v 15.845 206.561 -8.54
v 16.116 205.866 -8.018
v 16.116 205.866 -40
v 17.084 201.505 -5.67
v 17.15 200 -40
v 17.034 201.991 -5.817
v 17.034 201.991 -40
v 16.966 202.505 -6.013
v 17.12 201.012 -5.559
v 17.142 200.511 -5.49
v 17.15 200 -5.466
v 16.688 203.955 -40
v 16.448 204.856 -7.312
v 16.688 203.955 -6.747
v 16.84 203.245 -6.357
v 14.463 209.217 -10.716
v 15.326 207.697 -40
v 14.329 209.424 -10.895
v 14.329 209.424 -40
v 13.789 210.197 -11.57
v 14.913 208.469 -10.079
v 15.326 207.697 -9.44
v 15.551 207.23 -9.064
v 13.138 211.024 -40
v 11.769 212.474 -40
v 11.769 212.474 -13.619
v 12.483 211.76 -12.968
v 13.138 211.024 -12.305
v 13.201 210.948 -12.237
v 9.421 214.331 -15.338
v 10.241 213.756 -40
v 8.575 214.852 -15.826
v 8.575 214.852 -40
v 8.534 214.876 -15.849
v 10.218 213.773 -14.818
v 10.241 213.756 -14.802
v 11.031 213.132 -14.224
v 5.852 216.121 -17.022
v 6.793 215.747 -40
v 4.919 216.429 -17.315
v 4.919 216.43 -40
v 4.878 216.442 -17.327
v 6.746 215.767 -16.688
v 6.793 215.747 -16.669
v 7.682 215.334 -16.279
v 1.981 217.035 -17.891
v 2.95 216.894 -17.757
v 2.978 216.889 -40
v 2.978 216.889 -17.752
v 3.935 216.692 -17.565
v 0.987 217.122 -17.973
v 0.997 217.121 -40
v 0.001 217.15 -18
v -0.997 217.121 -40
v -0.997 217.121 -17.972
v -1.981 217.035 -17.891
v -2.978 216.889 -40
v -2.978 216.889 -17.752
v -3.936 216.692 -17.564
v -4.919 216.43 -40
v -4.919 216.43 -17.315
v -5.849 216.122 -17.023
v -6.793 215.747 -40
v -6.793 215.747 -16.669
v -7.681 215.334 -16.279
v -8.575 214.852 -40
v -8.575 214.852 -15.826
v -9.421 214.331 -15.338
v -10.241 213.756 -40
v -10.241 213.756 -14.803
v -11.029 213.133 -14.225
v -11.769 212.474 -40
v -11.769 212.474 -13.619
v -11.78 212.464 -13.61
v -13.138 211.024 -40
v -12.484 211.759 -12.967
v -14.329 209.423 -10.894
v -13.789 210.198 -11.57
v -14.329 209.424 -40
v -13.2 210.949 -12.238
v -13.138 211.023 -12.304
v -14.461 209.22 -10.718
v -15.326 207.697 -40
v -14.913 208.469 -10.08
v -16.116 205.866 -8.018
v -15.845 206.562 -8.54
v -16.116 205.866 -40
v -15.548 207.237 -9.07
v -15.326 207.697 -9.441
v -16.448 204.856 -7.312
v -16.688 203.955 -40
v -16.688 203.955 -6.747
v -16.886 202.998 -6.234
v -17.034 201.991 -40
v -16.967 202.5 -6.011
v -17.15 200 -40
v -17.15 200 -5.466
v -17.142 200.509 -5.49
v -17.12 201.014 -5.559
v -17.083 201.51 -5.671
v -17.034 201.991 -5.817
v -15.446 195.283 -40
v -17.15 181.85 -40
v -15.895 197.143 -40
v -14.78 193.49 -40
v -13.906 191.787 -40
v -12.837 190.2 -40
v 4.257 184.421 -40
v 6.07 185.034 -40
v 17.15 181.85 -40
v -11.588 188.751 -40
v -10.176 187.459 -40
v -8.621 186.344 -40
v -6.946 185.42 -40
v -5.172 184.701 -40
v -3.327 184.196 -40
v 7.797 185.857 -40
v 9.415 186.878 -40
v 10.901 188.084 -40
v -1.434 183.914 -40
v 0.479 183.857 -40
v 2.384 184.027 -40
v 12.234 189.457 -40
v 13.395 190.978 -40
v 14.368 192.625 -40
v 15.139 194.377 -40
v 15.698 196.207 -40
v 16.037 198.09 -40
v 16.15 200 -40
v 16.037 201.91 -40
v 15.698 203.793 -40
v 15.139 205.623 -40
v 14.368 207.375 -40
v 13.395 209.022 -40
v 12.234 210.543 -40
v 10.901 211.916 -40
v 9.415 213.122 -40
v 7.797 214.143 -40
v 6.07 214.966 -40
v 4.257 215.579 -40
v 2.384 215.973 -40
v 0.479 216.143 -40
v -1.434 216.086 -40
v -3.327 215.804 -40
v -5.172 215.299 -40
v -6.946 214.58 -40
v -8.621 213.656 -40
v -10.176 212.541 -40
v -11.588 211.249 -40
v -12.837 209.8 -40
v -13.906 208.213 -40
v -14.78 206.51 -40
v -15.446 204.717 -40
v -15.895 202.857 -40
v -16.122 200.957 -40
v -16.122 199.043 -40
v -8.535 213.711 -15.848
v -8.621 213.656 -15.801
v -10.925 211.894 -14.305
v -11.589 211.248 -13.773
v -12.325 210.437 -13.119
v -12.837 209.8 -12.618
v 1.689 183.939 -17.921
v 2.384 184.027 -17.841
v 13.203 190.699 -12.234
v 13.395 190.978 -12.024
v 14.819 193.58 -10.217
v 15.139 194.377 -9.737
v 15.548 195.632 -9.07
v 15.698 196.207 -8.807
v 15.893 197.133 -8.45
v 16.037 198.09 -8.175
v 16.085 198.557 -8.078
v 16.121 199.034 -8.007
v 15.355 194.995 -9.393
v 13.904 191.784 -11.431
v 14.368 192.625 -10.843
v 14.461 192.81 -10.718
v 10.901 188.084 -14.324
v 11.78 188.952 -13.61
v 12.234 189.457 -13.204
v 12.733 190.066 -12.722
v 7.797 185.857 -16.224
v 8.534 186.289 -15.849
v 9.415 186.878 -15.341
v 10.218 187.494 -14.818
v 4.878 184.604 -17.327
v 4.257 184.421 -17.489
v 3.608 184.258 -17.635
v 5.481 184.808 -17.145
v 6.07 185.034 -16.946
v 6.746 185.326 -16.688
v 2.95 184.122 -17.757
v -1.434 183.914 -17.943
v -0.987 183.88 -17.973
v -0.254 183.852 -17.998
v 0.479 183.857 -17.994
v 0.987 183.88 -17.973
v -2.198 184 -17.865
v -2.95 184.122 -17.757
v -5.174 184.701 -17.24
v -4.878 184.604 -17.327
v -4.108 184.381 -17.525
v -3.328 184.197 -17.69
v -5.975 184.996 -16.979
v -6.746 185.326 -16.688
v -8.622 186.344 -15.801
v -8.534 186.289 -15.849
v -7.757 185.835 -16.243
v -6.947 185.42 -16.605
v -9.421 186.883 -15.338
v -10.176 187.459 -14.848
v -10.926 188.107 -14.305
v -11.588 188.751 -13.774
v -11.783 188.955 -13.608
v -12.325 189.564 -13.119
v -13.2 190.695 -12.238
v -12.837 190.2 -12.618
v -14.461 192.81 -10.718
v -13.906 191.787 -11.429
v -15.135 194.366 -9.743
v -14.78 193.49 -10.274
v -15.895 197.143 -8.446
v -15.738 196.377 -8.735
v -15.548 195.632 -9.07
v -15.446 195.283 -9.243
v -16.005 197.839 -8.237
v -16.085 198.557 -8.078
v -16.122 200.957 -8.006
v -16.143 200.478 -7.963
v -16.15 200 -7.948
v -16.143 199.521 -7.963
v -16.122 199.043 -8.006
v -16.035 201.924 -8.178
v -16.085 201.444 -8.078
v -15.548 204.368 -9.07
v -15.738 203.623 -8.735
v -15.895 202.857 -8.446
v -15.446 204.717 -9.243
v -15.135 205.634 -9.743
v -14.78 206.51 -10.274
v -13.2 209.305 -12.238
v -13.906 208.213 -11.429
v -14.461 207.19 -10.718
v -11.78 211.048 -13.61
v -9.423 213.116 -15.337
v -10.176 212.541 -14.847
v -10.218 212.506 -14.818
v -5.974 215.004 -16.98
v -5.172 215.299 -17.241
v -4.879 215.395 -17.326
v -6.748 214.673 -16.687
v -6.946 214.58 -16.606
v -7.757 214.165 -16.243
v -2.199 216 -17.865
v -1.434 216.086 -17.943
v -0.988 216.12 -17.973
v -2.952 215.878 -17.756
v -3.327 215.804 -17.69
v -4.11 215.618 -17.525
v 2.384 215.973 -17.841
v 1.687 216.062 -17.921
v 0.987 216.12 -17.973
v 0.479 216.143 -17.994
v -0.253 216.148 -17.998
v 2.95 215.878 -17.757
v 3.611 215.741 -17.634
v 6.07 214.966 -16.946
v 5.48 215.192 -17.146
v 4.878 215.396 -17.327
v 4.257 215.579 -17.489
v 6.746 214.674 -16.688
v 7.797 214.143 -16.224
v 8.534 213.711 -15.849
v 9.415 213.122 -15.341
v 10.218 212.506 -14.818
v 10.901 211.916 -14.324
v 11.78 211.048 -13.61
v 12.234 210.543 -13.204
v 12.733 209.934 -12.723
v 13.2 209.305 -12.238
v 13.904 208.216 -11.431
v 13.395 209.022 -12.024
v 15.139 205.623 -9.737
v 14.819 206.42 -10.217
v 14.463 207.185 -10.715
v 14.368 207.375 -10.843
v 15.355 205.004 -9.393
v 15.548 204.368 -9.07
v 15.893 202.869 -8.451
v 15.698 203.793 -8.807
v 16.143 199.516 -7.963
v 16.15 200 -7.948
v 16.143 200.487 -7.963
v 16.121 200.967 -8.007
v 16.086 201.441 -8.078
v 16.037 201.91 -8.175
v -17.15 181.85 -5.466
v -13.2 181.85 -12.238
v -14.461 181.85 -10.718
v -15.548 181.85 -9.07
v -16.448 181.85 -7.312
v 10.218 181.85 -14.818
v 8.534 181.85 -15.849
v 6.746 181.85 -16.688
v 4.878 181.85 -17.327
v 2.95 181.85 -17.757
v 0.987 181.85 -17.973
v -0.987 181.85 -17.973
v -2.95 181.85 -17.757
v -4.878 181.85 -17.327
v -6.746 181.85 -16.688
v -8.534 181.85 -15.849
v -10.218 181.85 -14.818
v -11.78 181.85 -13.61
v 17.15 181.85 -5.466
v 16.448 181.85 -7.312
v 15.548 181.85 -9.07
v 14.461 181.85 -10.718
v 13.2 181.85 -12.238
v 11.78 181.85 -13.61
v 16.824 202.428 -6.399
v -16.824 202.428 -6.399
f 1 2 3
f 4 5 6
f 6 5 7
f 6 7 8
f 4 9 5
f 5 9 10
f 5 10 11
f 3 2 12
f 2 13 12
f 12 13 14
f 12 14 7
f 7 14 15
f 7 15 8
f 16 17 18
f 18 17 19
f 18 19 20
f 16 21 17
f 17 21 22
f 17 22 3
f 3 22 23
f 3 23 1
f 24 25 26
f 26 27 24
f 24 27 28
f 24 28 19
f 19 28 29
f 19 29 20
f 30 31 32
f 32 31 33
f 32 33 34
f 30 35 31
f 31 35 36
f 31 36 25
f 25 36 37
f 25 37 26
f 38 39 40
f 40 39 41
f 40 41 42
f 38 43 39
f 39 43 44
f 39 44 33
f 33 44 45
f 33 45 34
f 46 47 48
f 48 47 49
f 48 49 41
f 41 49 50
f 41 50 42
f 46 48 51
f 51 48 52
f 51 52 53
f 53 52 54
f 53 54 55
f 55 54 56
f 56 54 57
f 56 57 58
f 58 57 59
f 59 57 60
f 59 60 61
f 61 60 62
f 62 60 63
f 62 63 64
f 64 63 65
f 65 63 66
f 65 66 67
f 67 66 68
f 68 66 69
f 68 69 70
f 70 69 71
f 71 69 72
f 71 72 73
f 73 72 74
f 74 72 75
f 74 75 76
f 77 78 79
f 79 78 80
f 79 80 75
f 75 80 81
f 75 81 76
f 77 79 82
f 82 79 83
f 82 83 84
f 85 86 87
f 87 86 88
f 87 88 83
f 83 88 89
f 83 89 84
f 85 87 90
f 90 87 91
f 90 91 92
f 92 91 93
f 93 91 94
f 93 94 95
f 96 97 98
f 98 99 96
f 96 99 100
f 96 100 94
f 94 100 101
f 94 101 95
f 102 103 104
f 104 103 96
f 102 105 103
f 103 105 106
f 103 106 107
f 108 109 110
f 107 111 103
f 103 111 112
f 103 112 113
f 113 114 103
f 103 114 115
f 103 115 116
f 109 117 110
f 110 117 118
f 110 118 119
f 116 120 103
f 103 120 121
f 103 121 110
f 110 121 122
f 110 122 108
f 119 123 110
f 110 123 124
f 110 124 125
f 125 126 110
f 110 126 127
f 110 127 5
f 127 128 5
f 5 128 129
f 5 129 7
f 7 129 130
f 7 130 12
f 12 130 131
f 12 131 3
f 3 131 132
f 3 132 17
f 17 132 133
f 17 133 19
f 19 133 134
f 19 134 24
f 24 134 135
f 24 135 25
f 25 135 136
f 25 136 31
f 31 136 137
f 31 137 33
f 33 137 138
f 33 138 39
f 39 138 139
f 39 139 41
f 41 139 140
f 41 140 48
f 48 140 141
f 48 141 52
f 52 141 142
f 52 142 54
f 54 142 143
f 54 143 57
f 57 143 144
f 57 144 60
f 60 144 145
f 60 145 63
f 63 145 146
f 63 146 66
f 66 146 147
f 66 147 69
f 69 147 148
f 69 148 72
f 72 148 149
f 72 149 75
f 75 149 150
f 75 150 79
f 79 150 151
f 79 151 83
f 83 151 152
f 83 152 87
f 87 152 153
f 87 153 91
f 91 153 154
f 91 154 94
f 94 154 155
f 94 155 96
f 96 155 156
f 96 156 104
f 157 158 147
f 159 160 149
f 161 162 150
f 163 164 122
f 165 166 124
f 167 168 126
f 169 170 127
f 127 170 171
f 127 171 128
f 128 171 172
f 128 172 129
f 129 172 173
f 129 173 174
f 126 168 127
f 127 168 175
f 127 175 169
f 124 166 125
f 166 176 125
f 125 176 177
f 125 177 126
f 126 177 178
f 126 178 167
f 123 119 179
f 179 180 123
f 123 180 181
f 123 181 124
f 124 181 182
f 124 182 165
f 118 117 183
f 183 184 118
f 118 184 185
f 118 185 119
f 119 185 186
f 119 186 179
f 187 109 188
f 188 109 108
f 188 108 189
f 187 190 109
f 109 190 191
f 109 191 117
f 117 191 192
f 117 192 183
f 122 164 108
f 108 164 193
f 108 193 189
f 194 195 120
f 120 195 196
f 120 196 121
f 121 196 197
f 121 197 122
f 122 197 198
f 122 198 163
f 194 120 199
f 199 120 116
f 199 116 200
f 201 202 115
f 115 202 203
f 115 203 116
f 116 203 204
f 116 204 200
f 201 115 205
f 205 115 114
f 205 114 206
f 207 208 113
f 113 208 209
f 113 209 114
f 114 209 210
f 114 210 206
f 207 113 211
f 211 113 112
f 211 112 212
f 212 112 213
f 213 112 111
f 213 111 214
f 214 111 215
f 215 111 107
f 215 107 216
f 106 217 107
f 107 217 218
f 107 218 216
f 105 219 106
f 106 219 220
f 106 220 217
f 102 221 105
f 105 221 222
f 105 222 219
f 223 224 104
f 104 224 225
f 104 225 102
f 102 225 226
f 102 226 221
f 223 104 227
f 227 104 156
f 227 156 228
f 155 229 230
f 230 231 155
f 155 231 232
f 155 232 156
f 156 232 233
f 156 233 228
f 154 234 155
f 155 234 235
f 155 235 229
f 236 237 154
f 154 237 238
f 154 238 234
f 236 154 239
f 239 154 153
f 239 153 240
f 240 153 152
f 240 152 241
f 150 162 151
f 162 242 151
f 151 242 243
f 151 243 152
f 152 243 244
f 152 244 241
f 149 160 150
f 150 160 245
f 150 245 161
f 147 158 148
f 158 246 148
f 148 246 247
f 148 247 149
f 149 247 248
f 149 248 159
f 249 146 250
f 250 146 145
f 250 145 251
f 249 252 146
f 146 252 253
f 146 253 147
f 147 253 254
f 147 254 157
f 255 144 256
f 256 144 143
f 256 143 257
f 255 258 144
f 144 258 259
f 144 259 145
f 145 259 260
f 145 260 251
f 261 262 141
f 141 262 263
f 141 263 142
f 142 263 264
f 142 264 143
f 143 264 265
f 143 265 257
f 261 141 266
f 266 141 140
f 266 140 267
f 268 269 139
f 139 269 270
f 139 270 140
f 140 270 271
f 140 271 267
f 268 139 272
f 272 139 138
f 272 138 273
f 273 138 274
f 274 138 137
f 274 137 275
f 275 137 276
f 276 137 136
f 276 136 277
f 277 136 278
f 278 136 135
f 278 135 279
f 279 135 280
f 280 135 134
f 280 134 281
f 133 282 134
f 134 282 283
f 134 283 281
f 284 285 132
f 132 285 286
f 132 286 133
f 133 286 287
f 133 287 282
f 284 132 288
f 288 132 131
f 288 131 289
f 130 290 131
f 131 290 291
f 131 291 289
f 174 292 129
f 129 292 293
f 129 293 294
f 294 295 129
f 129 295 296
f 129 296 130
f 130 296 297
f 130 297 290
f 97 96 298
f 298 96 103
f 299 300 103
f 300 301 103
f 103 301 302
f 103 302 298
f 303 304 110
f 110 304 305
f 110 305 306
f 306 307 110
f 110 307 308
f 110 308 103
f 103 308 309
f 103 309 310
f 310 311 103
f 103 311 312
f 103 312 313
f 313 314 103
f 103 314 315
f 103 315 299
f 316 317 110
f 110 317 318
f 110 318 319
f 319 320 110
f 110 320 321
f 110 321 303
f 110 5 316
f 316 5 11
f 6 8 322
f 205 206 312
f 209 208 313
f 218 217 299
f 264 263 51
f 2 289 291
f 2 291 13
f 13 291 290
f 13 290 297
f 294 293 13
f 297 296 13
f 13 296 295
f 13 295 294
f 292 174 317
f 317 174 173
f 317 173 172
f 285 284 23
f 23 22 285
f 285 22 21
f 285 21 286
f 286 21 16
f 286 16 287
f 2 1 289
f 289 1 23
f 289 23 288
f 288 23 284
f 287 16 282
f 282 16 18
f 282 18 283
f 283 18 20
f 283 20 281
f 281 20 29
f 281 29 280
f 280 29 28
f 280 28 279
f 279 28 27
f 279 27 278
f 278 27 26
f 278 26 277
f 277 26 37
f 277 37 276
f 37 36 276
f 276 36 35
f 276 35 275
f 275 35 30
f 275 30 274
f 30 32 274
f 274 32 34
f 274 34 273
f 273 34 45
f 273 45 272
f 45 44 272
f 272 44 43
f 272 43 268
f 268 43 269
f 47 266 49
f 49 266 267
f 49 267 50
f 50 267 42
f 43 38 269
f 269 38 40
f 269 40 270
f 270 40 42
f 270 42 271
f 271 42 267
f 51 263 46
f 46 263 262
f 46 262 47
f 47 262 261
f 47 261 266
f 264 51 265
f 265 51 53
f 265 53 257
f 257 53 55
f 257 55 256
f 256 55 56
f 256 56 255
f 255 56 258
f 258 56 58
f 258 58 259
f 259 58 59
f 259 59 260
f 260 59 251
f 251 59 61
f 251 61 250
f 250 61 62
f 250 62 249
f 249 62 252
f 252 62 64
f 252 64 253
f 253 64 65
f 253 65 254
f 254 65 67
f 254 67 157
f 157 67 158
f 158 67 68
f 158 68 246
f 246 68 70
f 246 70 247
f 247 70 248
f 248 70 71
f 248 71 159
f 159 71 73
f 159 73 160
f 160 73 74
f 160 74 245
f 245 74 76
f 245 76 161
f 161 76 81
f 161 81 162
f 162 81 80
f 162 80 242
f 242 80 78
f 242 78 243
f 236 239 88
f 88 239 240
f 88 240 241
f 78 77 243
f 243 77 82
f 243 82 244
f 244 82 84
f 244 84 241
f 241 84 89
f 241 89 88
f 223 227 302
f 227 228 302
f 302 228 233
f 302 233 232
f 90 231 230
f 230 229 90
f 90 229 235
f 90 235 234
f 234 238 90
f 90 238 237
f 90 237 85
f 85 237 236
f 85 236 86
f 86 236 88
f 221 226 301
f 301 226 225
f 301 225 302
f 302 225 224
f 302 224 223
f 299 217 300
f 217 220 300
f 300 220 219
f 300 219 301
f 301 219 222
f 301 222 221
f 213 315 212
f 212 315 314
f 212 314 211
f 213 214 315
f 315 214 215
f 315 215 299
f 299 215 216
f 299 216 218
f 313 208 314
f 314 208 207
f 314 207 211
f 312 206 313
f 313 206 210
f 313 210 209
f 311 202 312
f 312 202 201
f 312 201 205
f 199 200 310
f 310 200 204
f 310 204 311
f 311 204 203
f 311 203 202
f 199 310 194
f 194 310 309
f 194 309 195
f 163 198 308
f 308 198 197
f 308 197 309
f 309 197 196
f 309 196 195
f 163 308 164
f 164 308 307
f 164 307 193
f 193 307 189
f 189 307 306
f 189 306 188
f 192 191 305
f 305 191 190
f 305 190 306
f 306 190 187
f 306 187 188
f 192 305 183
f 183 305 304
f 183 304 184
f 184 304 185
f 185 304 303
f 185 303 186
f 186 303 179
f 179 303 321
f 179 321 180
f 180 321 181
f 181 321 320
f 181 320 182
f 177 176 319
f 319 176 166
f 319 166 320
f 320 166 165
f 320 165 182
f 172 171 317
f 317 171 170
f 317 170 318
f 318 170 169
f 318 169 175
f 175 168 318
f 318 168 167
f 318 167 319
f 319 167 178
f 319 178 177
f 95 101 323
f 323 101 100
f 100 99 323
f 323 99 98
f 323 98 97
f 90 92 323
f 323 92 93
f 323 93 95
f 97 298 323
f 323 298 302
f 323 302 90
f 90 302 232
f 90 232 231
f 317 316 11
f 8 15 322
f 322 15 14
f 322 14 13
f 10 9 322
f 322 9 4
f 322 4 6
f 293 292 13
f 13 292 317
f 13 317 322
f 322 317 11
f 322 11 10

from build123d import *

# Parameters (mm, degrees)
SKETCH1_R           = 17.15
SKETCH1_R_2         = 16.15
BOSS_EXTRUDE1_DEPTH = 40
BOSS_EXTRUDE2_DEPTH = 40
SKETCH2_R           = 18
CUT_EXTRUDE1_DEPTH  = 369.15


with BuildPart() as part:
    # Sketch1 → Boss-Extrude1 (new body)
    with BuildSketch(Plane.XY):
        with Locations((0, 200)):
            Circle(SKETCH1_R)
        with Locations((0, 200)):
            Circle(SKETCH1_R_2, mode=Mode.SUBTRACT)
    extrude(amount=-BOSS_EXTRUDE1_DEPTH)

    # Sketch3 → Boss-Extrude2 (add)
    with BuildSketch(Plane(origin=(0, 0, -40), x_dir=(-1, 0, 0), z_dir=(0, 0, -1))):
        Polygon((17.15, 182.85), (17.15, 181.85), (-17.15, 181.85), (-17.15, 182.85), (0, 182.85), align=None)
        with BuildLine():
            Line((17.15, 182.85), (17.15, 200))
            ThreePointArc((17.15, 200), (12.126881297, 187.873118703), (0, 182.85))
            Line((0, 182.85), (17.15, 182.85))
        make_face()
        with BuildLine():
            ThreePointArc((0, 182.85), (-12.126881297, 187.873118703), (-17.15, 200))
            Line((-17.15, 200), (-17.15, 182.85))
            Line((-17.15, 182.85), (0, 182.85))
        make_face()
    extrude(amount=-BOSS_EXTRUDE2_DEPTH)

    # Sketch2 → Cut-Extrude1 (cut, through all)
    with BuildSketch(Plane(origin=(0, 550, 0), x_dir=(1, 0, 0), z_dir=(0, 1, 0))):
        Circle(SKETCH2_R)
    extrude(amount=-CUT_EXTRUDE1_DEPTH, mode=Mode.SUBTRACT)


solid = part.part
